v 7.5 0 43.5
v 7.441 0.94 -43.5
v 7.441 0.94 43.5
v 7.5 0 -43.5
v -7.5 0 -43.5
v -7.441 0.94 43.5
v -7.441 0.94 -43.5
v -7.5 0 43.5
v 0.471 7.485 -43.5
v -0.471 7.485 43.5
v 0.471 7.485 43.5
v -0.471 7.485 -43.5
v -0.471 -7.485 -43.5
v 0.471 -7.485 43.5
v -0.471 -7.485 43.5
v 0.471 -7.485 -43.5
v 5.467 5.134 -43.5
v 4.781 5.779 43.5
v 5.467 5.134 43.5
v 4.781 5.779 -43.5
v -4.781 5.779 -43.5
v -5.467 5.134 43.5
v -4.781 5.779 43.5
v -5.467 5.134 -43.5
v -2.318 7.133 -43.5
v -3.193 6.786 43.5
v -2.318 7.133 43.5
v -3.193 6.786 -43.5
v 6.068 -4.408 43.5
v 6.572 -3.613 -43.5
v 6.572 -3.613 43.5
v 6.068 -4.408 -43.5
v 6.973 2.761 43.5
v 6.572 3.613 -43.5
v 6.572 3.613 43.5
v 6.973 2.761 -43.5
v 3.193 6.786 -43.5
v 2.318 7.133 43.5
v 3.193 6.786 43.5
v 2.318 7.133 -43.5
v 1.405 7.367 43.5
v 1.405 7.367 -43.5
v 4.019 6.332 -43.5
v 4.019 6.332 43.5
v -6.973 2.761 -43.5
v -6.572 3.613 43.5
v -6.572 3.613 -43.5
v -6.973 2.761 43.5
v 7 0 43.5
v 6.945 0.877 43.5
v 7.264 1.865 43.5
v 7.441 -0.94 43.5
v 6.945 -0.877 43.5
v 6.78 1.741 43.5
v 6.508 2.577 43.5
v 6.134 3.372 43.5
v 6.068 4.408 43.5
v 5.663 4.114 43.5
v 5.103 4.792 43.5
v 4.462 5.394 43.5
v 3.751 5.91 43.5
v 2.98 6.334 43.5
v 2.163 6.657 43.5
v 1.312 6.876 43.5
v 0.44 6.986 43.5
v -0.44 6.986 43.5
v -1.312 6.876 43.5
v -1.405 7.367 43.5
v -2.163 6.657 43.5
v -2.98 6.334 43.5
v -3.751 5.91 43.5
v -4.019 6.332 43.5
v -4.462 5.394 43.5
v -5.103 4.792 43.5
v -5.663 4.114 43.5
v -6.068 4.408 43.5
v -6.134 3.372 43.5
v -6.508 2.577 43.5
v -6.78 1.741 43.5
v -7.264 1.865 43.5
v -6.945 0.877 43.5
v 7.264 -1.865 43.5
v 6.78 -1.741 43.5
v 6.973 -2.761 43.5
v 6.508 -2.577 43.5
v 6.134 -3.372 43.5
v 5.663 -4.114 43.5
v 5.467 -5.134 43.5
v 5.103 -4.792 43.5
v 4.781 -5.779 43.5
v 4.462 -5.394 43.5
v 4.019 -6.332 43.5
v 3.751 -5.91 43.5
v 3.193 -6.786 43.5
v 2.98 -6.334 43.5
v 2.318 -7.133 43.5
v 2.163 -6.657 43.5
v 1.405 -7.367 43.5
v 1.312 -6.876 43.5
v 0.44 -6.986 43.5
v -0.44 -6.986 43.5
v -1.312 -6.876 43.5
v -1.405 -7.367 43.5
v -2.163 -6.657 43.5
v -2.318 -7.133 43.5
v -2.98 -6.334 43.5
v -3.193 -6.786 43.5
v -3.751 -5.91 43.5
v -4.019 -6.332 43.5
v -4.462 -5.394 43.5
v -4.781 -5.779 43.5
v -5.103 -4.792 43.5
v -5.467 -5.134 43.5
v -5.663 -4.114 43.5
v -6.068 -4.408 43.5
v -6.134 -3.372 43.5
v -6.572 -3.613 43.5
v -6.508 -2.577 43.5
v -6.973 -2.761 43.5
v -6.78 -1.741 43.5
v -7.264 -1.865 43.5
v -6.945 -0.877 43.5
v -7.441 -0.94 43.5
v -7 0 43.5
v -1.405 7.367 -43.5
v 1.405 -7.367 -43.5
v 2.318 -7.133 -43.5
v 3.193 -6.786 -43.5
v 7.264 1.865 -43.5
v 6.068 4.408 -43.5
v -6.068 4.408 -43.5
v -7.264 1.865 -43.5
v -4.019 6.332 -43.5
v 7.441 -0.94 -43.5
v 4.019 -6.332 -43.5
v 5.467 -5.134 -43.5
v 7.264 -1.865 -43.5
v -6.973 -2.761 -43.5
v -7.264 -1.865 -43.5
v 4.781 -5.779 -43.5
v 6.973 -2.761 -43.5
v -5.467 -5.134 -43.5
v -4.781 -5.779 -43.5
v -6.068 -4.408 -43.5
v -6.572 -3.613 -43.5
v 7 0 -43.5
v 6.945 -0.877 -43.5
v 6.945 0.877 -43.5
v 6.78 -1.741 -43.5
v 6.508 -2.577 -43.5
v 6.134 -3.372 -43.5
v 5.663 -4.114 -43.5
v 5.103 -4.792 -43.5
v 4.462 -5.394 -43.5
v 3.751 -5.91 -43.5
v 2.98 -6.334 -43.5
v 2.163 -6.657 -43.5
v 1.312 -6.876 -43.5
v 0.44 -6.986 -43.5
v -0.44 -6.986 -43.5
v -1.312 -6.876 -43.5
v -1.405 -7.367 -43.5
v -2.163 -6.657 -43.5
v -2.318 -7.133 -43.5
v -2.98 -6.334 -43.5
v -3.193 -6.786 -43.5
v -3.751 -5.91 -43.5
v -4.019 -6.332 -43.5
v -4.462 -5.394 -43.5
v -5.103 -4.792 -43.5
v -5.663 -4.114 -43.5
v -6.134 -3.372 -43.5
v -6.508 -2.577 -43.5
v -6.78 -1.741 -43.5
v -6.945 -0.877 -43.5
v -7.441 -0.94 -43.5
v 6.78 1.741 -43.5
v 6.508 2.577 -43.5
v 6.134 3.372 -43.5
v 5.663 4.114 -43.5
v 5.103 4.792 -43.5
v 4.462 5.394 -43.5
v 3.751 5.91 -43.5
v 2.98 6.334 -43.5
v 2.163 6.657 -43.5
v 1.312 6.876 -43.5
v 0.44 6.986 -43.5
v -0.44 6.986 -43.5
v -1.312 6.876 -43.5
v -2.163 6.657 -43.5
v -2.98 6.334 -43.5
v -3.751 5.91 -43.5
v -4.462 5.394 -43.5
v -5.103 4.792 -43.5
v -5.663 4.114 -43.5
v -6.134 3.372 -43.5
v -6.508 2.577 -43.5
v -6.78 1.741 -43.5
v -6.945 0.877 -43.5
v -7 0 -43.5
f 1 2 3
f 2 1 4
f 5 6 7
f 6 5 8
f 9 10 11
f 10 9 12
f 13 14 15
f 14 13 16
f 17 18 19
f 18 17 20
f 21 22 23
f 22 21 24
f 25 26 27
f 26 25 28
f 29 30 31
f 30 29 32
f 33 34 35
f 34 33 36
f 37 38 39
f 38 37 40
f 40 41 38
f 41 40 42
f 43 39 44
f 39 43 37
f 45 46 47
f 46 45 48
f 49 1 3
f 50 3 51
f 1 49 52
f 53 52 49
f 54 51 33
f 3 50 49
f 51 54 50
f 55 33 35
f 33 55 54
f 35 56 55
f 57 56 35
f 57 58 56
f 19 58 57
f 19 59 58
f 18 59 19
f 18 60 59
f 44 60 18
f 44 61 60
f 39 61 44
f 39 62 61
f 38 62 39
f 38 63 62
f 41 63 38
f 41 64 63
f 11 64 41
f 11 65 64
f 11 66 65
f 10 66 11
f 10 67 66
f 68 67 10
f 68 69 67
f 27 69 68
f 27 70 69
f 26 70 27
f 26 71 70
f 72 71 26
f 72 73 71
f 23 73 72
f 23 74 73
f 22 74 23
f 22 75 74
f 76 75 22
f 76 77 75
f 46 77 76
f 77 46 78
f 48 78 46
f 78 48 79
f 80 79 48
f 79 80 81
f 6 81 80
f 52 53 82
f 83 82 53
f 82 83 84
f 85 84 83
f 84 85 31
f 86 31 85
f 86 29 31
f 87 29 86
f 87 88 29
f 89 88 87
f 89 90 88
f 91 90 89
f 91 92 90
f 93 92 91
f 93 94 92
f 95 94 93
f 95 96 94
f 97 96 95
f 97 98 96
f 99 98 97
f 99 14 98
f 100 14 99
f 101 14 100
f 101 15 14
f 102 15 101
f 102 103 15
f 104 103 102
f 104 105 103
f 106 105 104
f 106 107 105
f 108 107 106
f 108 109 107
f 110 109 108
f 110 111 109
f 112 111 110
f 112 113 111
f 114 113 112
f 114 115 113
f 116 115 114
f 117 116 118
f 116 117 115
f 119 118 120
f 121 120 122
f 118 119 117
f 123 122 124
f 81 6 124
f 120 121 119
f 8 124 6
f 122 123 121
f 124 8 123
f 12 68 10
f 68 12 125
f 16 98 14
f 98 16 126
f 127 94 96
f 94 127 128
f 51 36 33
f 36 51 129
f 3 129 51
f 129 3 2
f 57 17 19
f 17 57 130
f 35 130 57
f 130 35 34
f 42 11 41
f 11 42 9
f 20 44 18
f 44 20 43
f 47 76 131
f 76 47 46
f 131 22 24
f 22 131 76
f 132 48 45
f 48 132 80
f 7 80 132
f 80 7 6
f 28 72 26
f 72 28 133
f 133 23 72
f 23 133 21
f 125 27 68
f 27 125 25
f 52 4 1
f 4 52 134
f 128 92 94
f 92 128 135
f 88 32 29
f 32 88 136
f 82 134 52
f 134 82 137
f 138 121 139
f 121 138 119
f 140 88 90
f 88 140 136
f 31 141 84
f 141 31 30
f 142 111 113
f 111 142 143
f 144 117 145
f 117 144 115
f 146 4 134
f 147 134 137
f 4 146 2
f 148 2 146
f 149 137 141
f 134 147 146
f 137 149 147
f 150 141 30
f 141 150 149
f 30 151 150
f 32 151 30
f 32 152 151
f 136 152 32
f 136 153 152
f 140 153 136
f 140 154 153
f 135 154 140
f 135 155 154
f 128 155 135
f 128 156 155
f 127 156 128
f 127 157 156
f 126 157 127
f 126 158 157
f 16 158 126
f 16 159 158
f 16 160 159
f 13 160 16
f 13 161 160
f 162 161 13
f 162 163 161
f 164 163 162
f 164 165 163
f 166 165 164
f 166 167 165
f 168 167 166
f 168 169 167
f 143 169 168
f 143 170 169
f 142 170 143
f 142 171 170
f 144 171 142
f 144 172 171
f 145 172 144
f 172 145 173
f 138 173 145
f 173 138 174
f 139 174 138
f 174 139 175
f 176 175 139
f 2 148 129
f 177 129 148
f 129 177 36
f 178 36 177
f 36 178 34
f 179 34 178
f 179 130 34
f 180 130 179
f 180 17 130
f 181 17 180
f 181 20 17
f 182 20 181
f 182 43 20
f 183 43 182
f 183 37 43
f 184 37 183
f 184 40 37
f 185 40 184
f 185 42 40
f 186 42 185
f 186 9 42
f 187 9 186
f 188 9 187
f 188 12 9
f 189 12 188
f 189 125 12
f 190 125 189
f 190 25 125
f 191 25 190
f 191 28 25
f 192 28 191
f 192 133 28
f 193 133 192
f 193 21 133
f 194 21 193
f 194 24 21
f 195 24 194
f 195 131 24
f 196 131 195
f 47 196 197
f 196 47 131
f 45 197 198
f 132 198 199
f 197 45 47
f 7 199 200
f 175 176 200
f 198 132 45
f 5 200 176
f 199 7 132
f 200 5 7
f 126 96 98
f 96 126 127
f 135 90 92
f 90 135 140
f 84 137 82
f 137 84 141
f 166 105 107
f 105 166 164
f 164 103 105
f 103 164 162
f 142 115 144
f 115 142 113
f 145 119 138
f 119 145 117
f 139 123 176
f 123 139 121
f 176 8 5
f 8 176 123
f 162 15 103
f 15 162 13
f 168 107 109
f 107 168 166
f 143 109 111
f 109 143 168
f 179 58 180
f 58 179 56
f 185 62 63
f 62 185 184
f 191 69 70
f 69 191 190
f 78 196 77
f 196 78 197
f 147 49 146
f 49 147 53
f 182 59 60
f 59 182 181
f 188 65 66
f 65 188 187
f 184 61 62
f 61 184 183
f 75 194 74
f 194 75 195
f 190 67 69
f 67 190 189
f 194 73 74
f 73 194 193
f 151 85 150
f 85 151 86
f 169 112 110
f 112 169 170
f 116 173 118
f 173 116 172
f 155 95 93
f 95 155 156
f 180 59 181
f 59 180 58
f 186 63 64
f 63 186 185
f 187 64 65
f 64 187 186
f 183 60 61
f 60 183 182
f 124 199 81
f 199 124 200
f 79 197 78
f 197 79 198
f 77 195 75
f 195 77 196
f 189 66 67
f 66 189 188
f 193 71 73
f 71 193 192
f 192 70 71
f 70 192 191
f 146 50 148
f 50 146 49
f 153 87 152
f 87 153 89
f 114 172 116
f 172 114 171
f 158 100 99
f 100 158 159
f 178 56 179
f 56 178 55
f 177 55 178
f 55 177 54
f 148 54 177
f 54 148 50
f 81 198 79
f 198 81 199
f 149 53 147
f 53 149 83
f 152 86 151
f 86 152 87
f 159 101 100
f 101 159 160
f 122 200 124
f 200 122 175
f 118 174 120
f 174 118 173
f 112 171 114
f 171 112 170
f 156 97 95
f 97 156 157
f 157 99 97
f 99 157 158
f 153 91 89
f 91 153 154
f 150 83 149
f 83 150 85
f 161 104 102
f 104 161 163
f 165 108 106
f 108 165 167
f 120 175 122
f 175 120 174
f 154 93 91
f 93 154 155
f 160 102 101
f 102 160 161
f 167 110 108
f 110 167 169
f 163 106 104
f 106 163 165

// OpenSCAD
$fn = 50;


difference() {
	union() {
		translate(v = [0, 0, -43.5000000000]) {
			cylinder(h = 87, r = 7.5000000000);
		}
	}
	union() {
		translate(v = [0, 0, -100.0000000000]) {
			cylinder(h = 200, r = 7);
		}
	}
}
